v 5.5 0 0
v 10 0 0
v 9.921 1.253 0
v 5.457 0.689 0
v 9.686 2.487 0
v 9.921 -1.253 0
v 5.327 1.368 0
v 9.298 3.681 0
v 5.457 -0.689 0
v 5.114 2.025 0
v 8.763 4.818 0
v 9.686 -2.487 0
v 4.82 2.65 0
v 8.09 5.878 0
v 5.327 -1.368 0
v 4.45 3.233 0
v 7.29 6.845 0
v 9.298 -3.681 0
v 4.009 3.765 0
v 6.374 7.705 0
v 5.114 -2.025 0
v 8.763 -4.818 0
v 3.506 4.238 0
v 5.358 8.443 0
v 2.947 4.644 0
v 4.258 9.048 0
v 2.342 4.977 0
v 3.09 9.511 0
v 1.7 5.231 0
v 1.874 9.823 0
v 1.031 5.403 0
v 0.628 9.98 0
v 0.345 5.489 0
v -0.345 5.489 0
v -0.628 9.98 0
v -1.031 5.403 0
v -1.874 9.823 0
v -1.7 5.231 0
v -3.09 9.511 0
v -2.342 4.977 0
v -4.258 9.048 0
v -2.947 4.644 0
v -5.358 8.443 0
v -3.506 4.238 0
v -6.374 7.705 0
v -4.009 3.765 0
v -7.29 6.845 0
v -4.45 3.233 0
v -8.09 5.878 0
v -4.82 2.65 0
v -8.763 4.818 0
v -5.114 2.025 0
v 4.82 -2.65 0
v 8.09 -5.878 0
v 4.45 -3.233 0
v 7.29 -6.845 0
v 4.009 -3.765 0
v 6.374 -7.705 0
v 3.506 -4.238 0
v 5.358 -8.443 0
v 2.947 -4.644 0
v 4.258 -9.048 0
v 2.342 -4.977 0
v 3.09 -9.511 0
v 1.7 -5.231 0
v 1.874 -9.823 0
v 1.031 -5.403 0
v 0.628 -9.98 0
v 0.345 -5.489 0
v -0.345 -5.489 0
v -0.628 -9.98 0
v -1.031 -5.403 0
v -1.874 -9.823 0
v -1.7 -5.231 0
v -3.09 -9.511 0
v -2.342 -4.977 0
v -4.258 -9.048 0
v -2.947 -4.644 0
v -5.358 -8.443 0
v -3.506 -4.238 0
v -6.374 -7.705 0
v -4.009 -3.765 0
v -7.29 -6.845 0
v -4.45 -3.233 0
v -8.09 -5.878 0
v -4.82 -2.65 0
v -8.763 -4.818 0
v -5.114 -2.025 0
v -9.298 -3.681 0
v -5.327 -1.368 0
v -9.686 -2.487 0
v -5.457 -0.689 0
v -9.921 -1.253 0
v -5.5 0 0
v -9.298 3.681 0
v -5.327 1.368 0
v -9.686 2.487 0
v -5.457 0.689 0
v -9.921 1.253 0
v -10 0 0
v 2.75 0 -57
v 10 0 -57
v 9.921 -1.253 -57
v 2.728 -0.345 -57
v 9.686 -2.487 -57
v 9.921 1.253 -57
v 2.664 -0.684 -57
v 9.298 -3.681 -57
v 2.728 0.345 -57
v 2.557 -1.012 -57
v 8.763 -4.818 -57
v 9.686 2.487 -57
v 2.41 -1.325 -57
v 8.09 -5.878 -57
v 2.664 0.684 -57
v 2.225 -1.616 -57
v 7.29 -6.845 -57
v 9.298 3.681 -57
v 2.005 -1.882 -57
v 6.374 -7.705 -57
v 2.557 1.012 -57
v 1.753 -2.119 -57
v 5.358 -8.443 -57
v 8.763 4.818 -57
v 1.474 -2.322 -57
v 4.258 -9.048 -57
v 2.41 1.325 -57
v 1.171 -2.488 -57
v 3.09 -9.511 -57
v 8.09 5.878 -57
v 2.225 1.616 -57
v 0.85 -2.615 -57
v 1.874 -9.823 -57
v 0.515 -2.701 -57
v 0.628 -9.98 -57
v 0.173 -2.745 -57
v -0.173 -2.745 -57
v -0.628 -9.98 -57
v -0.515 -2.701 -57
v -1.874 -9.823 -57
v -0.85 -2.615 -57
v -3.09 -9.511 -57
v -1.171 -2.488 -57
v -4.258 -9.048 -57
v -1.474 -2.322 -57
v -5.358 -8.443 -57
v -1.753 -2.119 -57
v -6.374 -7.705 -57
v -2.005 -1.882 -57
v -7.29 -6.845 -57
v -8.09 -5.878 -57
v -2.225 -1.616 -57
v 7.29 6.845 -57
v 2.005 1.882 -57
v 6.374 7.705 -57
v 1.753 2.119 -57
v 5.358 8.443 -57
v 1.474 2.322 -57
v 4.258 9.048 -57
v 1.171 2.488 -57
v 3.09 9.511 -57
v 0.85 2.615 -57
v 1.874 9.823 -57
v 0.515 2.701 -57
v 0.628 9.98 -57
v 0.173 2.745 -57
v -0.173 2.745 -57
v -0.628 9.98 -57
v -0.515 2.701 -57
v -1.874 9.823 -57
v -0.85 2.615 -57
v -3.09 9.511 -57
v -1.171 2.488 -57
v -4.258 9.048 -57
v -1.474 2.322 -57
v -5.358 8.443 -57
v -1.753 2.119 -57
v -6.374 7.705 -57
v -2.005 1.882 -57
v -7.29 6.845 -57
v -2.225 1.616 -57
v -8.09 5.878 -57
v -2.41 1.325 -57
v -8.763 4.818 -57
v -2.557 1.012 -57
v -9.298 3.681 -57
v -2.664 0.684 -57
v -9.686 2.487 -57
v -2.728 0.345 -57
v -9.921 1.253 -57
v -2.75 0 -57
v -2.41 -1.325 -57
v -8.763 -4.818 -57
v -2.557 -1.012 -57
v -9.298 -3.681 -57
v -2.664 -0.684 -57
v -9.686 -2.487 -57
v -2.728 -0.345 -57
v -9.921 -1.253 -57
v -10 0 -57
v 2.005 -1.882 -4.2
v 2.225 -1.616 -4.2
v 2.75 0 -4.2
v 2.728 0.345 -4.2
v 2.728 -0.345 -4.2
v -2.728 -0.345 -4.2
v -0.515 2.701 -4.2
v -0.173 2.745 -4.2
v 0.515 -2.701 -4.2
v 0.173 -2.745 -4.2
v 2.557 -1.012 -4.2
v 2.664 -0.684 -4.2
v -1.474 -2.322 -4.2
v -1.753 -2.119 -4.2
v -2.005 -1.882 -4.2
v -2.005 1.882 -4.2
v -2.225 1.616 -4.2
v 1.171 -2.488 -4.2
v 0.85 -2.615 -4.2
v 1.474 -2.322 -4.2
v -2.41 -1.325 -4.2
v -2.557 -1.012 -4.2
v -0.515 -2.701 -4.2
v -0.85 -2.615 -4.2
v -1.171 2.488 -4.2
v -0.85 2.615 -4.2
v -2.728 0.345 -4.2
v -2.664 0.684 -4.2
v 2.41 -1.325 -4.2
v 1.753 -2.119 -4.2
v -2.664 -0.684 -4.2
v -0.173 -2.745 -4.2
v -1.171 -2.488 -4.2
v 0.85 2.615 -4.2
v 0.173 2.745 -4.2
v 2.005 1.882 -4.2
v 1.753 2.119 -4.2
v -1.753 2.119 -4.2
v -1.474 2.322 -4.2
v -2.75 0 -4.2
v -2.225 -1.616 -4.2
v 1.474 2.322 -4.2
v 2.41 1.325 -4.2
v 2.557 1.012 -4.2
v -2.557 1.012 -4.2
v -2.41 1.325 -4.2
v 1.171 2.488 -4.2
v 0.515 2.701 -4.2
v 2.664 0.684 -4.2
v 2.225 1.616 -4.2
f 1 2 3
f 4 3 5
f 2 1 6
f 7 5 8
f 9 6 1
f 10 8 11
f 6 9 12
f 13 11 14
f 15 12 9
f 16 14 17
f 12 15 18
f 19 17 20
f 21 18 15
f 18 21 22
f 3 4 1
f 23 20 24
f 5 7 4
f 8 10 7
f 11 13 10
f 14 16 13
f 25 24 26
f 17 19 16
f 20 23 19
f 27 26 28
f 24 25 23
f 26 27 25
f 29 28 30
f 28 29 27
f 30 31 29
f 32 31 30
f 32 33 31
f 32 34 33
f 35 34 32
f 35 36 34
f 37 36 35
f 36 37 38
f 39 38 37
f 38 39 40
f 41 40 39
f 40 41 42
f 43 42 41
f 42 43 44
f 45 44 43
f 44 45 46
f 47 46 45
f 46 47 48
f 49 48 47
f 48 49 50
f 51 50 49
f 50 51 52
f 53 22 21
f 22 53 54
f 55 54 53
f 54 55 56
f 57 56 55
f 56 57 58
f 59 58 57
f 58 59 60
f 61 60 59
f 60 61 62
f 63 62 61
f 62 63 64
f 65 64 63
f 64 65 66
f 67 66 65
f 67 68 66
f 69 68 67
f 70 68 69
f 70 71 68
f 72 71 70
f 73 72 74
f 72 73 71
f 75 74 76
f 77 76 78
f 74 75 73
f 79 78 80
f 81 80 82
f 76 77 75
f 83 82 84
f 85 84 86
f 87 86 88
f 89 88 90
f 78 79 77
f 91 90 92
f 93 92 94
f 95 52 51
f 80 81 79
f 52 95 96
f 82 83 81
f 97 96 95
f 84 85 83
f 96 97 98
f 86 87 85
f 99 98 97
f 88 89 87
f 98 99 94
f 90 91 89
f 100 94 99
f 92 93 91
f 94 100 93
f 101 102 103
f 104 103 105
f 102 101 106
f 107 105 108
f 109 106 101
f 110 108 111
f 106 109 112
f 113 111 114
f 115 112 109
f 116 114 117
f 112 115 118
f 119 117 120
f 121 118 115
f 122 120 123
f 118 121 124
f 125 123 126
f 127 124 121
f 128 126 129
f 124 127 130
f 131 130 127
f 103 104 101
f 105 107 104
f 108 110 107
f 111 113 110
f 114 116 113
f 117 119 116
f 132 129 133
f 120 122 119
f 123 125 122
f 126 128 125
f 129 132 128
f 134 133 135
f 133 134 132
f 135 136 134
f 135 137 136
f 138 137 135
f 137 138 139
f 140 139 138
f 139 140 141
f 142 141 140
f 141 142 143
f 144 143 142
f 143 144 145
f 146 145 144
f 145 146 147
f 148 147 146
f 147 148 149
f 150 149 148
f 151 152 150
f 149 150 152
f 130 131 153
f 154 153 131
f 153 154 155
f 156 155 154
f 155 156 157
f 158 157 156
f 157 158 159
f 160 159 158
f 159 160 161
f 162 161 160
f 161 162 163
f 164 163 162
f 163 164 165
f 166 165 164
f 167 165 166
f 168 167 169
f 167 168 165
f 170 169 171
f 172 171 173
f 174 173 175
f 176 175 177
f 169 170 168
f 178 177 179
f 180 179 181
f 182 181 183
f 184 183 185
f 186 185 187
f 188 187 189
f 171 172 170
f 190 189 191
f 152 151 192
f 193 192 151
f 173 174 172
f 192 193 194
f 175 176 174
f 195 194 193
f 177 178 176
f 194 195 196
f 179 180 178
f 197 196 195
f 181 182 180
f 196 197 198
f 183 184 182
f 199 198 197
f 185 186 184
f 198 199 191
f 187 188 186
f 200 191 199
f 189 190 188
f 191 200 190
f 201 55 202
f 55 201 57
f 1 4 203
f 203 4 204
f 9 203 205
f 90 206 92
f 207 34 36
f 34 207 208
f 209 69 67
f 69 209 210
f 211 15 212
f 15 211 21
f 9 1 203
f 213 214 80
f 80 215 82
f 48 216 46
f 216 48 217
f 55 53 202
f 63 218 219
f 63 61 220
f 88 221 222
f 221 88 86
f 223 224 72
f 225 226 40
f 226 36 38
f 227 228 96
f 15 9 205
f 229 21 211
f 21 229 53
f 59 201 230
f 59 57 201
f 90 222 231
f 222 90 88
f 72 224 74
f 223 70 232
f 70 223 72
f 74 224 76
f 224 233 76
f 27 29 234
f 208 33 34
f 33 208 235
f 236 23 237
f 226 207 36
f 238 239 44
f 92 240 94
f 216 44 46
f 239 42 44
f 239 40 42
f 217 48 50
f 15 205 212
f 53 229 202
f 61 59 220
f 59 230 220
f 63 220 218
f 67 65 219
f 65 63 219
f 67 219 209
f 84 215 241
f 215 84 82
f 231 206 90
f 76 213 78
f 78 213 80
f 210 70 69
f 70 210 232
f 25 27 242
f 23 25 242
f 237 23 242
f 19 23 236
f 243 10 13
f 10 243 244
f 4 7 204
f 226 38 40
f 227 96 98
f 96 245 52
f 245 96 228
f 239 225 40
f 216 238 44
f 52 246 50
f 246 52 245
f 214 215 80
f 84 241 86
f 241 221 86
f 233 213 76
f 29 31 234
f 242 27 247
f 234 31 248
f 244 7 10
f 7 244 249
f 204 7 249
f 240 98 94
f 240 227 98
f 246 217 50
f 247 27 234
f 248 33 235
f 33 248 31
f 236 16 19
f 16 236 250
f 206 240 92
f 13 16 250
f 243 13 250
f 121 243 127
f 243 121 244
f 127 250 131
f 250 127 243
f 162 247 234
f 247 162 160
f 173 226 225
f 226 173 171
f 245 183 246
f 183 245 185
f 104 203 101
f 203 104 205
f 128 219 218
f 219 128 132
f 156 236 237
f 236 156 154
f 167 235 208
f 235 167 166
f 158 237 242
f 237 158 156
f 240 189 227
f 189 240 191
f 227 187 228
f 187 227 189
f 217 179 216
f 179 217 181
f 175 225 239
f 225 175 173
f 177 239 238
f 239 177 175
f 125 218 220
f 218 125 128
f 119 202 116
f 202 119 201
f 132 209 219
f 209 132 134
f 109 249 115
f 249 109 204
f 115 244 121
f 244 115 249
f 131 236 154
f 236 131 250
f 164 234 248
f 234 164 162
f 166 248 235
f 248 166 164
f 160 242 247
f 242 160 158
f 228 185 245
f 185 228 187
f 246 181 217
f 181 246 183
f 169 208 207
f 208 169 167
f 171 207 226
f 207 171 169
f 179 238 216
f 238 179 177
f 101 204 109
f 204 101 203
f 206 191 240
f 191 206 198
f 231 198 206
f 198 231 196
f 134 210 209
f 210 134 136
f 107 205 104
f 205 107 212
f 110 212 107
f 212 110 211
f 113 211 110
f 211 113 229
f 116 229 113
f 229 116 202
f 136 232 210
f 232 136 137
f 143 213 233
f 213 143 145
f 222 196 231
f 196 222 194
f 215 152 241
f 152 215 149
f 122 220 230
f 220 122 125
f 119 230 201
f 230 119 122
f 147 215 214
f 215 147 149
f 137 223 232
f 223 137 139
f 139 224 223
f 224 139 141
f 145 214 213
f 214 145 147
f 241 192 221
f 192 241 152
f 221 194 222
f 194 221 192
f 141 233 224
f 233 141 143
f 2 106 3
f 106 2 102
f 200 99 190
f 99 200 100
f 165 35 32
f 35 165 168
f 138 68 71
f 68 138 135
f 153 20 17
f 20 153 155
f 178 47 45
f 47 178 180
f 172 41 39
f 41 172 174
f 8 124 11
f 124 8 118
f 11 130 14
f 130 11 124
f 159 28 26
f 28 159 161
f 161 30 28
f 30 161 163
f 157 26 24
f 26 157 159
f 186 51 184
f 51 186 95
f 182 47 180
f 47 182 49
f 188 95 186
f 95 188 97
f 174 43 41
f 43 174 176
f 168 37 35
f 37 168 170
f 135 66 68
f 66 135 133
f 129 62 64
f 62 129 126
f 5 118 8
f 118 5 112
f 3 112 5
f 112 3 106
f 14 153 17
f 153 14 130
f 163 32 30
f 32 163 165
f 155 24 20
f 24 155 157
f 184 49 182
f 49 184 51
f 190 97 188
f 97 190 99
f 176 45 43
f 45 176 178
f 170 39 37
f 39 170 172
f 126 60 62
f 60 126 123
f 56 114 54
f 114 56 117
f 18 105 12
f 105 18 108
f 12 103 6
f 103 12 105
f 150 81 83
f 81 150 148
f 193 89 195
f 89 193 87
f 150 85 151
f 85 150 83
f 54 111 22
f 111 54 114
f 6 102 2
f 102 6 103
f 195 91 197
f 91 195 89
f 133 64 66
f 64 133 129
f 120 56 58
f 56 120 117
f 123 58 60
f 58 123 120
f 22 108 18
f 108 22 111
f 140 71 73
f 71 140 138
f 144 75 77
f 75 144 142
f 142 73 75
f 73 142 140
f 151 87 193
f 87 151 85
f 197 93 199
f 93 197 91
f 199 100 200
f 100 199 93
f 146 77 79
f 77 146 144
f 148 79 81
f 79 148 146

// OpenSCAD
$fn = 50;


difference() {
	union() {
		translate(v = [0, 0, -57.0000000000]) {
			cylinder(h = 57, r = 10.0000000000);
		}
	}
	union() {
		translate(v = [0, 0, 0]) {
			rotate(a = [0, 0, 0]) {
				difference() {
					union() {
						#translate(v = [0, 0, -57.0000000000]) {
							cylinder(h = 57, r = 2.2500000000);
						}
						#translate(v = [0, 0, -4.2000000000]) {
							cylinder(h = 4.2000000000, r1 = 2.7500000000, r2 = 5.5000000000);
						}
						#translate(v = [0, 0, -57.0000000000]) {
							cylinder(h = 57, r = 2.7500000000);
						}
						#translate(v = [0, 0, -57.0000000000]) {
							cylinder(h = 57, r = 2.2500000000);
						}
					}
					union();
				}
			}
		}
	}
}
